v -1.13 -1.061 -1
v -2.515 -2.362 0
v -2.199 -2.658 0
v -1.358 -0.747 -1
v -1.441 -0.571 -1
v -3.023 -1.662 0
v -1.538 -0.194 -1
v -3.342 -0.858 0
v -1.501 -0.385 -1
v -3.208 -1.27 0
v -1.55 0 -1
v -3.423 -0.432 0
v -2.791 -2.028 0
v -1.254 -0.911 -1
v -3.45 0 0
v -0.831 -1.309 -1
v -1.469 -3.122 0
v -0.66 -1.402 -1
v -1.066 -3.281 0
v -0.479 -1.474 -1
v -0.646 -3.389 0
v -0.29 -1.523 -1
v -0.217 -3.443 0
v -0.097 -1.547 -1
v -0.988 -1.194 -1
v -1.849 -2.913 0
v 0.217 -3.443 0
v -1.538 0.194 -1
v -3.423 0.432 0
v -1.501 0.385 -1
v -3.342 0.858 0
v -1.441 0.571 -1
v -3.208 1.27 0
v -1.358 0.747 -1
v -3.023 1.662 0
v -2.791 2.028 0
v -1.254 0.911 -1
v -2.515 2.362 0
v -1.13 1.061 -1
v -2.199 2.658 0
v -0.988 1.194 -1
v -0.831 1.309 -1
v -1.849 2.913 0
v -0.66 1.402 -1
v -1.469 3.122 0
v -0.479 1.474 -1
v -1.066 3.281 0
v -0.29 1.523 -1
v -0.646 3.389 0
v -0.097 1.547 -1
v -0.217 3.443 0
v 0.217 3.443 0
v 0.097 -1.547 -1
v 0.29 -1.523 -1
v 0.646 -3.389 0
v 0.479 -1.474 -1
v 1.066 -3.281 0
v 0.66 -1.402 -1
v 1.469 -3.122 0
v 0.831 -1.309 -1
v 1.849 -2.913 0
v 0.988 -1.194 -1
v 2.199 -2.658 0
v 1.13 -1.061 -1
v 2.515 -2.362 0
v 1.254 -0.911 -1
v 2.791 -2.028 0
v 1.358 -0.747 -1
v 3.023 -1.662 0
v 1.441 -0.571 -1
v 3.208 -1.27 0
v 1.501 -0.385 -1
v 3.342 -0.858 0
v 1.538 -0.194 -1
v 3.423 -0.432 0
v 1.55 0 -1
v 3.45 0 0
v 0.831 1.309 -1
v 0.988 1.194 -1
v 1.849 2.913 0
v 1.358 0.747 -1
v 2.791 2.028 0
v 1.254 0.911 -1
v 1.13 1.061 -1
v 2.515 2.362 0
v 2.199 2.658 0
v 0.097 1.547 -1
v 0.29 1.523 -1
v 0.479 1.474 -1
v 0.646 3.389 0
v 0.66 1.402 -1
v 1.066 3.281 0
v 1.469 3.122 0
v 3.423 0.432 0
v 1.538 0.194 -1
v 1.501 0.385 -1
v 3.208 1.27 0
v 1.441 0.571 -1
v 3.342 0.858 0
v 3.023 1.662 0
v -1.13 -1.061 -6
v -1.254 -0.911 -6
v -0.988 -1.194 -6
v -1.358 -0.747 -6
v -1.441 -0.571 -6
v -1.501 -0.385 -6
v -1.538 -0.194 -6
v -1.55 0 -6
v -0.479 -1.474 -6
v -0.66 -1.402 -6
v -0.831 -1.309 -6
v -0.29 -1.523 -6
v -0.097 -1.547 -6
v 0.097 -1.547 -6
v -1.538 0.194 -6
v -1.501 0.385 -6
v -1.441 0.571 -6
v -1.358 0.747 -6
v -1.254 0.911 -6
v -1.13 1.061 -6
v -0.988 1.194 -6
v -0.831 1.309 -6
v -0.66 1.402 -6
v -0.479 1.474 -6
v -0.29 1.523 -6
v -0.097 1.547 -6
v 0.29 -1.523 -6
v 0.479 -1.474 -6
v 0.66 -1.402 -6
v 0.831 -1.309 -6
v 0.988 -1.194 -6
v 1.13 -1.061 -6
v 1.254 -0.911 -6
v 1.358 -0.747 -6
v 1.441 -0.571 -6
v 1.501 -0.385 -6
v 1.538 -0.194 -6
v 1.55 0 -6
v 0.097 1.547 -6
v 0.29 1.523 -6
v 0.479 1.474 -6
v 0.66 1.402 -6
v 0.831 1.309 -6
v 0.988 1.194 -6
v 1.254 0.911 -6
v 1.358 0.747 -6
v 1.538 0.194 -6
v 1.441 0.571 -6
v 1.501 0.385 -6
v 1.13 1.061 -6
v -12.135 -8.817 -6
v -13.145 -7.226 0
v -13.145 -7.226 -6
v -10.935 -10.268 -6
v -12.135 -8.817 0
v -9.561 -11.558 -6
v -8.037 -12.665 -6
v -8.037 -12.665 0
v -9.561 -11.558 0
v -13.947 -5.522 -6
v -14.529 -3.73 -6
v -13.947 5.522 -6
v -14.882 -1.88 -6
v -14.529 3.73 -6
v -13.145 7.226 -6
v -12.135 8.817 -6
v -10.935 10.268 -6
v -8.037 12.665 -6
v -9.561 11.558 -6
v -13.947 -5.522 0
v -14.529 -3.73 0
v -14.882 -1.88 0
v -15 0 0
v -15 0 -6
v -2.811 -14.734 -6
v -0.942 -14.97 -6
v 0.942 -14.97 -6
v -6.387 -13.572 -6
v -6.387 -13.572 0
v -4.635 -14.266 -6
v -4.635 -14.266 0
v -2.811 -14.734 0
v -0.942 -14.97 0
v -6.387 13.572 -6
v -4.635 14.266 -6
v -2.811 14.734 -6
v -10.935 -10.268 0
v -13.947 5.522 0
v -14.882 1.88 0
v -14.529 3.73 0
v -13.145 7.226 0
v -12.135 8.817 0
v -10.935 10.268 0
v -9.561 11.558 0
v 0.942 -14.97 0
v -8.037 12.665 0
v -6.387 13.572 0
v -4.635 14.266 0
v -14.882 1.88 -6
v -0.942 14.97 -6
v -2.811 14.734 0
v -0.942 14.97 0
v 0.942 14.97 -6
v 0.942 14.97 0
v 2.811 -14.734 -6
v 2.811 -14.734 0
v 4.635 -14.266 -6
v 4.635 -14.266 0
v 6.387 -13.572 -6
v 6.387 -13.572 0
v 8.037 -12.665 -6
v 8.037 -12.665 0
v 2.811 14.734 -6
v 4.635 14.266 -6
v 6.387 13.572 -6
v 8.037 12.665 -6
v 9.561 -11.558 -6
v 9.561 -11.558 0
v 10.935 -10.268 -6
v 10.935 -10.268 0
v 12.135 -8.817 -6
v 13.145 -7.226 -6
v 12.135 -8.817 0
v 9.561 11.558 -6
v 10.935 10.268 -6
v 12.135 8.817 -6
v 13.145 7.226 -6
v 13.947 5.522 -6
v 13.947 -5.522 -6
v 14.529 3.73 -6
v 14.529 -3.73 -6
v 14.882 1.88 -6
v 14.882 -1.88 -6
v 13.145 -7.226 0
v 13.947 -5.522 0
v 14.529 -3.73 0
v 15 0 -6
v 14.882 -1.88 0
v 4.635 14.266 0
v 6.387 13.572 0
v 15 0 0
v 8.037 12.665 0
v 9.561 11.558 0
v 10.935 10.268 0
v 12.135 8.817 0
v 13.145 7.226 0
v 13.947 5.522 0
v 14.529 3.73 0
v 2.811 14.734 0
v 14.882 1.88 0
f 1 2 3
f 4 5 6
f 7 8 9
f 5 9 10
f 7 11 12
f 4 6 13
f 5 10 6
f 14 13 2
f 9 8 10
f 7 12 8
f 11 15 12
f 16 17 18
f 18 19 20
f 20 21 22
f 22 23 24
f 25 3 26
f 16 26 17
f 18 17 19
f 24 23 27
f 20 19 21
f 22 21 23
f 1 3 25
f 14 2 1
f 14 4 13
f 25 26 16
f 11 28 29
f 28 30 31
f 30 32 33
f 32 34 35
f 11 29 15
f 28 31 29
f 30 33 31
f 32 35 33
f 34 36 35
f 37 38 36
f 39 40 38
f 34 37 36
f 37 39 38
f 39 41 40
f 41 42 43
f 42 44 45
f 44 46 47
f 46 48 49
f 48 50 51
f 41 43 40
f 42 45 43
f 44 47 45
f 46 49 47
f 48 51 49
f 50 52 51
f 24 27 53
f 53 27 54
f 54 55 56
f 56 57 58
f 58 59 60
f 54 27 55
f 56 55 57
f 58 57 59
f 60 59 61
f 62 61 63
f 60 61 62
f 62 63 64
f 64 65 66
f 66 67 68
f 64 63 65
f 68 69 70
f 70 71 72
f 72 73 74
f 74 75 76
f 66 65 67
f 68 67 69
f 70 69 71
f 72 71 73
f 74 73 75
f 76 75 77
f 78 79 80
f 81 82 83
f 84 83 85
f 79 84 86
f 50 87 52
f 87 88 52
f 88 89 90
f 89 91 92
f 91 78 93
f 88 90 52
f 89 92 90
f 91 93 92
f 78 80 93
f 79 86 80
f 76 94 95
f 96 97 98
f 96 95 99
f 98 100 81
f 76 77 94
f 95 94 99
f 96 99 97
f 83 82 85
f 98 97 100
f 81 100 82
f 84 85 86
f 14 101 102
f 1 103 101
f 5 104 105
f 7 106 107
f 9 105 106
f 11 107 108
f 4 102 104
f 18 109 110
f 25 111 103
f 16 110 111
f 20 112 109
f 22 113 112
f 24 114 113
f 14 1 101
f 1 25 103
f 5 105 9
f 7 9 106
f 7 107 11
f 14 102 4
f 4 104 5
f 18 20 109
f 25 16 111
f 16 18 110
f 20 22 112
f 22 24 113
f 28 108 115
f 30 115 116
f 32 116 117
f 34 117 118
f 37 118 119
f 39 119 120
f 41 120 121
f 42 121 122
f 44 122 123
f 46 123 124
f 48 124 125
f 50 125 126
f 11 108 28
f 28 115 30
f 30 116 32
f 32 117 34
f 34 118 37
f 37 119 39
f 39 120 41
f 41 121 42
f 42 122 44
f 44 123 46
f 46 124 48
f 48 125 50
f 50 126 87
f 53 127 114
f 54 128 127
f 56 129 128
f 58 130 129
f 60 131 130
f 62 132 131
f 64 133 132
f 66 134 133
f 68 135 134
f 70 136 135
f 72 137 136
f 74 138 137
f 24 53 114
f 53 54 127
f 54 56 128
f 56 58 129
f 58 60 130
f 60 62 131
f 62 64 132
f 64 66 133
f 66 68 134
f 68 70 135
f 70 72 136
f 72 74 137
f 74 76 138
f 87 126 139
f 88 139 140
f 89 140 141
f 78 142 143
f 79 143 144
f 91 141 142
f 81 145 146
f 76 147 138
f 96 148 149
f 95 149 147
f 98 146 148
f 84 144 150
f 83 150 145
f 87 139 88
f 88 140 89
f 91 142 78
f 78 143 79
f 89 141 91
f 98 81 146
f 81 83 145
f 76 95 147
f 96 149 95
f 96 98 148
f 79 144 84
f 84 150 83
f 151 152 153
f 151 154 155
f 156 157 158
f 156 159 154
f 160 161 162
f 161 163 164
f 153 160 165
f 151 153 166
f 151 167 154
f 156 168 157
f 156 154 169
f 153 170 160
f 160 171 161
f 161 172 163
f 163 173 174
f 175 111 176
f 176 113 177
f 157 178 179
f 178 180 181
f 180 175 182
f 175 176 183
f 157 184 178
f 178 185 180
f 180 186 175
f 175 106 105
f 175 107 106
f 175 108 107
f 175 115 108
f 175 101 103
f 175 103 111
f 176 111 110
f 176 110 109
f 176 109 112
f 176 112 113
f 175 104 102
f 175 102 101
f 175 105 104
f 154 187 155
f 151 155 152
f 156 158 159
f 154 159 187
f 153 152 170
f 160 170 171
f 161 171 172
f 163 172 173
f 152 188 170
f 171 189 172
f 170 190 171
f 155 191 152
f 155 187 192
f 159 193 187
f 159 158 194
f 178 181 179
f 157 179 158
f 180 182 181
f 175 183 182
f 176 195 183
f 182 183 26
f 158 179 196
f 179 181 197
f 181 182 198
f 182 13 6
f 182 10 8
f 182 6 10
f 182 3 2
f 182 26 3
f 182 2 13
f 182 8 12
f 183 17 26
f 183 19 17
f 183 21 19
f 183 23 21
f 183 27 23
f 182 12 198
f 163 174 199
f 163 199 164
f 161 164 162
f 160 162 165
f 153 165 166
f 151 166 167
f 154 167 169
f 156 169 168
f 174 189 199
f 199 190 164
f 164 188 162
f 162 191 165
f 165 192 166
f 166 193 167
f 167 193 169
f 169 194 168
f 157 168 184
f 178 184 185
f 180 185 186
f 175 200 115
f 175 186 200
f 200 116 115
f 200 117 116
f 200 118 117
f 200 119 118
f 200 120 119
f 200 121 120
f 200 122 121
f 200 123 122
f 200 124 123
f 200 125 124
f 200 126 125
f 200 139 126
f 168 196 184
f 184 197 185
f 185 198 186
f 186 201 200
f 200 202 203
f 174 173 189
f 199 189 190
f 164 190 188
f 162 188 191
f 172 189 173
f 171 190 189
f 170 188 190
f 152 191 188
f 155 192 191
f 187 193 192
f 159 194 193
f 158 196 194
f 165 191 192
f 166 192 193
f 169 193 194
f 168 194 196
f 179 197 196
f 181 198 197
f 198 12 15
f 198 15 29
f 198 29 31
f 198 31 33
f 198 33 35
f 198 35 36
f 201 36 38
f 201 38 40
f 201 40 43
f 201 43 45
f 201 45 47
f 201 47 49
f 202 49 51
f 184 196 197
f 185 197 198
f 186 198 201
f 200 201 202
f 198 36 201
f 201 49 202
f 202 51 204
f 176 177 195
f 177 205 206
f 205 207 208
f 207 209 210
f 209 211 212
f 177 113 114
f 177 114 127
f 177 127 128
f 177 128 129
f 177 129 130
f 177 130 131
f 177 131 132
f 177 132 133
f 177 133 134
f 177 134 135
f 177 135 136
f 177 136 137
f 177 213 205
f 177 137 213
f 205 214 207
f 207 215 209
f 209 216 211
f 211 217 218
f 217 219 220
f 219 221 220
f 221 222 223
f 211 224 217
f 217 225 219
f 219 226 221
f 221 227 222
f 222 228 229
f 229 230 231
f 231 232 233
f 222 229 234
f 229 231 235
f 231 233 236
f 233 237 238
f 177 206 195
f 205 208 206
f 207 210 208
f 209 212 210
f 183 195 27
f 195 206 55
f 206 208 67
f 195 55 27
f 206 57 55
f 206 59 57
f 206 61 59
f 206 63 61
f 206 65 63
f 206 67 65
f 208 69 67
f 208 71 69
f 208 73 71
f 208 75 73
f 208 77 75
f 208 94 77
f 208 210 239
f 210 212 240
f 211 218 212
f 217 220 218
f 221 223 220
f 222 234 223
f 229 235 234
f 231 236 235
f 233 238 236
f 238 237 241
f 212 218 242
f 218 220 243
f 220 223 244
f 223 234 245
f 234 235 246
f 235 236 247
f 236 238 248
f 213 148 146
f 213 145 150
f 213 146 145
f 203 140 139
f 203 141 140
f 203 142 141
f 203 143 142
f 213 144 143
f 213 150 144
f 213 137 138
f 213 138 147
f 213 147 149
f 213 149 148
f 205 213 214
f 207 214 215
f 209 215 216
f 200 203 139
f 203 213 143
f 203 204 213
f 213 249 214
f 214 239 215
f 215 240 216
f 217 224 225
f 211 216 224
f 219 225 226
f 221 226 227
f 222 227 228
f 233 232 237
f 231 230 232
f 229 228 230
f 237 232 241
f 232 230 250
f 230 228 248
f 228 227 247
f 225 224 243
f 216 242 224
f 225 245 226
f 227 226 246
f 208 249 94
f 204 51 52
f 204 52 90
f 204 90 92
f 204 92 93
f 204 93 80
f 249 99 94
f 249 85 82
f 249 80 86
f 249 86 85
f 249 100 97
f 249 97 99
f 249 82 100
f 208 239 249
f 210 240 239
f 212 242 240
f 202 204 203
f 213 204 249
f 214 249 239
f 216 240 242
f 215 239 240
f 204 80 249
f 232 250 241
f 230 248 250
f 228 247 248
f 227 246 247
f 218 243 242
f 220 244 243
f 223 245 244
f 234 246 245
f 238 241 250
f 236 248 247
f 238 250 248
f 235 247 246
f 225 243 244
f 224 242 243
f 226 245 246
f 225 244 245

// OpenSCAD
$fn = 50;

difference() {
	union() {
		translate(v = [0, 0, -6.0]) {
			cylinder(h = 6, r = 15.0);
		}
	}
	union() {
		translate(v = [0, 0, 0]) {
			rotate(a = [0, 0, 0]) {
				difference() {
					union() {
						translate(v = [0, 0, -9.0]) {
							cylinder(h = 9, r = 1.25);
						}
						translate(v = [0, 0, -1.0]) {
							cylinder(h = 1.0, r1 = 1.55, r2 = 3.45);
						}
						translate(v = [0, 0, -9.0]) {
							cylinder(h = 9, r = 1.55);
						}
						translate(v = [0, 0, -9.0]) {
							cylinder(h = 9, r = 1.25);
						}
					}
					union();
				}
			}
		}
	}
}
